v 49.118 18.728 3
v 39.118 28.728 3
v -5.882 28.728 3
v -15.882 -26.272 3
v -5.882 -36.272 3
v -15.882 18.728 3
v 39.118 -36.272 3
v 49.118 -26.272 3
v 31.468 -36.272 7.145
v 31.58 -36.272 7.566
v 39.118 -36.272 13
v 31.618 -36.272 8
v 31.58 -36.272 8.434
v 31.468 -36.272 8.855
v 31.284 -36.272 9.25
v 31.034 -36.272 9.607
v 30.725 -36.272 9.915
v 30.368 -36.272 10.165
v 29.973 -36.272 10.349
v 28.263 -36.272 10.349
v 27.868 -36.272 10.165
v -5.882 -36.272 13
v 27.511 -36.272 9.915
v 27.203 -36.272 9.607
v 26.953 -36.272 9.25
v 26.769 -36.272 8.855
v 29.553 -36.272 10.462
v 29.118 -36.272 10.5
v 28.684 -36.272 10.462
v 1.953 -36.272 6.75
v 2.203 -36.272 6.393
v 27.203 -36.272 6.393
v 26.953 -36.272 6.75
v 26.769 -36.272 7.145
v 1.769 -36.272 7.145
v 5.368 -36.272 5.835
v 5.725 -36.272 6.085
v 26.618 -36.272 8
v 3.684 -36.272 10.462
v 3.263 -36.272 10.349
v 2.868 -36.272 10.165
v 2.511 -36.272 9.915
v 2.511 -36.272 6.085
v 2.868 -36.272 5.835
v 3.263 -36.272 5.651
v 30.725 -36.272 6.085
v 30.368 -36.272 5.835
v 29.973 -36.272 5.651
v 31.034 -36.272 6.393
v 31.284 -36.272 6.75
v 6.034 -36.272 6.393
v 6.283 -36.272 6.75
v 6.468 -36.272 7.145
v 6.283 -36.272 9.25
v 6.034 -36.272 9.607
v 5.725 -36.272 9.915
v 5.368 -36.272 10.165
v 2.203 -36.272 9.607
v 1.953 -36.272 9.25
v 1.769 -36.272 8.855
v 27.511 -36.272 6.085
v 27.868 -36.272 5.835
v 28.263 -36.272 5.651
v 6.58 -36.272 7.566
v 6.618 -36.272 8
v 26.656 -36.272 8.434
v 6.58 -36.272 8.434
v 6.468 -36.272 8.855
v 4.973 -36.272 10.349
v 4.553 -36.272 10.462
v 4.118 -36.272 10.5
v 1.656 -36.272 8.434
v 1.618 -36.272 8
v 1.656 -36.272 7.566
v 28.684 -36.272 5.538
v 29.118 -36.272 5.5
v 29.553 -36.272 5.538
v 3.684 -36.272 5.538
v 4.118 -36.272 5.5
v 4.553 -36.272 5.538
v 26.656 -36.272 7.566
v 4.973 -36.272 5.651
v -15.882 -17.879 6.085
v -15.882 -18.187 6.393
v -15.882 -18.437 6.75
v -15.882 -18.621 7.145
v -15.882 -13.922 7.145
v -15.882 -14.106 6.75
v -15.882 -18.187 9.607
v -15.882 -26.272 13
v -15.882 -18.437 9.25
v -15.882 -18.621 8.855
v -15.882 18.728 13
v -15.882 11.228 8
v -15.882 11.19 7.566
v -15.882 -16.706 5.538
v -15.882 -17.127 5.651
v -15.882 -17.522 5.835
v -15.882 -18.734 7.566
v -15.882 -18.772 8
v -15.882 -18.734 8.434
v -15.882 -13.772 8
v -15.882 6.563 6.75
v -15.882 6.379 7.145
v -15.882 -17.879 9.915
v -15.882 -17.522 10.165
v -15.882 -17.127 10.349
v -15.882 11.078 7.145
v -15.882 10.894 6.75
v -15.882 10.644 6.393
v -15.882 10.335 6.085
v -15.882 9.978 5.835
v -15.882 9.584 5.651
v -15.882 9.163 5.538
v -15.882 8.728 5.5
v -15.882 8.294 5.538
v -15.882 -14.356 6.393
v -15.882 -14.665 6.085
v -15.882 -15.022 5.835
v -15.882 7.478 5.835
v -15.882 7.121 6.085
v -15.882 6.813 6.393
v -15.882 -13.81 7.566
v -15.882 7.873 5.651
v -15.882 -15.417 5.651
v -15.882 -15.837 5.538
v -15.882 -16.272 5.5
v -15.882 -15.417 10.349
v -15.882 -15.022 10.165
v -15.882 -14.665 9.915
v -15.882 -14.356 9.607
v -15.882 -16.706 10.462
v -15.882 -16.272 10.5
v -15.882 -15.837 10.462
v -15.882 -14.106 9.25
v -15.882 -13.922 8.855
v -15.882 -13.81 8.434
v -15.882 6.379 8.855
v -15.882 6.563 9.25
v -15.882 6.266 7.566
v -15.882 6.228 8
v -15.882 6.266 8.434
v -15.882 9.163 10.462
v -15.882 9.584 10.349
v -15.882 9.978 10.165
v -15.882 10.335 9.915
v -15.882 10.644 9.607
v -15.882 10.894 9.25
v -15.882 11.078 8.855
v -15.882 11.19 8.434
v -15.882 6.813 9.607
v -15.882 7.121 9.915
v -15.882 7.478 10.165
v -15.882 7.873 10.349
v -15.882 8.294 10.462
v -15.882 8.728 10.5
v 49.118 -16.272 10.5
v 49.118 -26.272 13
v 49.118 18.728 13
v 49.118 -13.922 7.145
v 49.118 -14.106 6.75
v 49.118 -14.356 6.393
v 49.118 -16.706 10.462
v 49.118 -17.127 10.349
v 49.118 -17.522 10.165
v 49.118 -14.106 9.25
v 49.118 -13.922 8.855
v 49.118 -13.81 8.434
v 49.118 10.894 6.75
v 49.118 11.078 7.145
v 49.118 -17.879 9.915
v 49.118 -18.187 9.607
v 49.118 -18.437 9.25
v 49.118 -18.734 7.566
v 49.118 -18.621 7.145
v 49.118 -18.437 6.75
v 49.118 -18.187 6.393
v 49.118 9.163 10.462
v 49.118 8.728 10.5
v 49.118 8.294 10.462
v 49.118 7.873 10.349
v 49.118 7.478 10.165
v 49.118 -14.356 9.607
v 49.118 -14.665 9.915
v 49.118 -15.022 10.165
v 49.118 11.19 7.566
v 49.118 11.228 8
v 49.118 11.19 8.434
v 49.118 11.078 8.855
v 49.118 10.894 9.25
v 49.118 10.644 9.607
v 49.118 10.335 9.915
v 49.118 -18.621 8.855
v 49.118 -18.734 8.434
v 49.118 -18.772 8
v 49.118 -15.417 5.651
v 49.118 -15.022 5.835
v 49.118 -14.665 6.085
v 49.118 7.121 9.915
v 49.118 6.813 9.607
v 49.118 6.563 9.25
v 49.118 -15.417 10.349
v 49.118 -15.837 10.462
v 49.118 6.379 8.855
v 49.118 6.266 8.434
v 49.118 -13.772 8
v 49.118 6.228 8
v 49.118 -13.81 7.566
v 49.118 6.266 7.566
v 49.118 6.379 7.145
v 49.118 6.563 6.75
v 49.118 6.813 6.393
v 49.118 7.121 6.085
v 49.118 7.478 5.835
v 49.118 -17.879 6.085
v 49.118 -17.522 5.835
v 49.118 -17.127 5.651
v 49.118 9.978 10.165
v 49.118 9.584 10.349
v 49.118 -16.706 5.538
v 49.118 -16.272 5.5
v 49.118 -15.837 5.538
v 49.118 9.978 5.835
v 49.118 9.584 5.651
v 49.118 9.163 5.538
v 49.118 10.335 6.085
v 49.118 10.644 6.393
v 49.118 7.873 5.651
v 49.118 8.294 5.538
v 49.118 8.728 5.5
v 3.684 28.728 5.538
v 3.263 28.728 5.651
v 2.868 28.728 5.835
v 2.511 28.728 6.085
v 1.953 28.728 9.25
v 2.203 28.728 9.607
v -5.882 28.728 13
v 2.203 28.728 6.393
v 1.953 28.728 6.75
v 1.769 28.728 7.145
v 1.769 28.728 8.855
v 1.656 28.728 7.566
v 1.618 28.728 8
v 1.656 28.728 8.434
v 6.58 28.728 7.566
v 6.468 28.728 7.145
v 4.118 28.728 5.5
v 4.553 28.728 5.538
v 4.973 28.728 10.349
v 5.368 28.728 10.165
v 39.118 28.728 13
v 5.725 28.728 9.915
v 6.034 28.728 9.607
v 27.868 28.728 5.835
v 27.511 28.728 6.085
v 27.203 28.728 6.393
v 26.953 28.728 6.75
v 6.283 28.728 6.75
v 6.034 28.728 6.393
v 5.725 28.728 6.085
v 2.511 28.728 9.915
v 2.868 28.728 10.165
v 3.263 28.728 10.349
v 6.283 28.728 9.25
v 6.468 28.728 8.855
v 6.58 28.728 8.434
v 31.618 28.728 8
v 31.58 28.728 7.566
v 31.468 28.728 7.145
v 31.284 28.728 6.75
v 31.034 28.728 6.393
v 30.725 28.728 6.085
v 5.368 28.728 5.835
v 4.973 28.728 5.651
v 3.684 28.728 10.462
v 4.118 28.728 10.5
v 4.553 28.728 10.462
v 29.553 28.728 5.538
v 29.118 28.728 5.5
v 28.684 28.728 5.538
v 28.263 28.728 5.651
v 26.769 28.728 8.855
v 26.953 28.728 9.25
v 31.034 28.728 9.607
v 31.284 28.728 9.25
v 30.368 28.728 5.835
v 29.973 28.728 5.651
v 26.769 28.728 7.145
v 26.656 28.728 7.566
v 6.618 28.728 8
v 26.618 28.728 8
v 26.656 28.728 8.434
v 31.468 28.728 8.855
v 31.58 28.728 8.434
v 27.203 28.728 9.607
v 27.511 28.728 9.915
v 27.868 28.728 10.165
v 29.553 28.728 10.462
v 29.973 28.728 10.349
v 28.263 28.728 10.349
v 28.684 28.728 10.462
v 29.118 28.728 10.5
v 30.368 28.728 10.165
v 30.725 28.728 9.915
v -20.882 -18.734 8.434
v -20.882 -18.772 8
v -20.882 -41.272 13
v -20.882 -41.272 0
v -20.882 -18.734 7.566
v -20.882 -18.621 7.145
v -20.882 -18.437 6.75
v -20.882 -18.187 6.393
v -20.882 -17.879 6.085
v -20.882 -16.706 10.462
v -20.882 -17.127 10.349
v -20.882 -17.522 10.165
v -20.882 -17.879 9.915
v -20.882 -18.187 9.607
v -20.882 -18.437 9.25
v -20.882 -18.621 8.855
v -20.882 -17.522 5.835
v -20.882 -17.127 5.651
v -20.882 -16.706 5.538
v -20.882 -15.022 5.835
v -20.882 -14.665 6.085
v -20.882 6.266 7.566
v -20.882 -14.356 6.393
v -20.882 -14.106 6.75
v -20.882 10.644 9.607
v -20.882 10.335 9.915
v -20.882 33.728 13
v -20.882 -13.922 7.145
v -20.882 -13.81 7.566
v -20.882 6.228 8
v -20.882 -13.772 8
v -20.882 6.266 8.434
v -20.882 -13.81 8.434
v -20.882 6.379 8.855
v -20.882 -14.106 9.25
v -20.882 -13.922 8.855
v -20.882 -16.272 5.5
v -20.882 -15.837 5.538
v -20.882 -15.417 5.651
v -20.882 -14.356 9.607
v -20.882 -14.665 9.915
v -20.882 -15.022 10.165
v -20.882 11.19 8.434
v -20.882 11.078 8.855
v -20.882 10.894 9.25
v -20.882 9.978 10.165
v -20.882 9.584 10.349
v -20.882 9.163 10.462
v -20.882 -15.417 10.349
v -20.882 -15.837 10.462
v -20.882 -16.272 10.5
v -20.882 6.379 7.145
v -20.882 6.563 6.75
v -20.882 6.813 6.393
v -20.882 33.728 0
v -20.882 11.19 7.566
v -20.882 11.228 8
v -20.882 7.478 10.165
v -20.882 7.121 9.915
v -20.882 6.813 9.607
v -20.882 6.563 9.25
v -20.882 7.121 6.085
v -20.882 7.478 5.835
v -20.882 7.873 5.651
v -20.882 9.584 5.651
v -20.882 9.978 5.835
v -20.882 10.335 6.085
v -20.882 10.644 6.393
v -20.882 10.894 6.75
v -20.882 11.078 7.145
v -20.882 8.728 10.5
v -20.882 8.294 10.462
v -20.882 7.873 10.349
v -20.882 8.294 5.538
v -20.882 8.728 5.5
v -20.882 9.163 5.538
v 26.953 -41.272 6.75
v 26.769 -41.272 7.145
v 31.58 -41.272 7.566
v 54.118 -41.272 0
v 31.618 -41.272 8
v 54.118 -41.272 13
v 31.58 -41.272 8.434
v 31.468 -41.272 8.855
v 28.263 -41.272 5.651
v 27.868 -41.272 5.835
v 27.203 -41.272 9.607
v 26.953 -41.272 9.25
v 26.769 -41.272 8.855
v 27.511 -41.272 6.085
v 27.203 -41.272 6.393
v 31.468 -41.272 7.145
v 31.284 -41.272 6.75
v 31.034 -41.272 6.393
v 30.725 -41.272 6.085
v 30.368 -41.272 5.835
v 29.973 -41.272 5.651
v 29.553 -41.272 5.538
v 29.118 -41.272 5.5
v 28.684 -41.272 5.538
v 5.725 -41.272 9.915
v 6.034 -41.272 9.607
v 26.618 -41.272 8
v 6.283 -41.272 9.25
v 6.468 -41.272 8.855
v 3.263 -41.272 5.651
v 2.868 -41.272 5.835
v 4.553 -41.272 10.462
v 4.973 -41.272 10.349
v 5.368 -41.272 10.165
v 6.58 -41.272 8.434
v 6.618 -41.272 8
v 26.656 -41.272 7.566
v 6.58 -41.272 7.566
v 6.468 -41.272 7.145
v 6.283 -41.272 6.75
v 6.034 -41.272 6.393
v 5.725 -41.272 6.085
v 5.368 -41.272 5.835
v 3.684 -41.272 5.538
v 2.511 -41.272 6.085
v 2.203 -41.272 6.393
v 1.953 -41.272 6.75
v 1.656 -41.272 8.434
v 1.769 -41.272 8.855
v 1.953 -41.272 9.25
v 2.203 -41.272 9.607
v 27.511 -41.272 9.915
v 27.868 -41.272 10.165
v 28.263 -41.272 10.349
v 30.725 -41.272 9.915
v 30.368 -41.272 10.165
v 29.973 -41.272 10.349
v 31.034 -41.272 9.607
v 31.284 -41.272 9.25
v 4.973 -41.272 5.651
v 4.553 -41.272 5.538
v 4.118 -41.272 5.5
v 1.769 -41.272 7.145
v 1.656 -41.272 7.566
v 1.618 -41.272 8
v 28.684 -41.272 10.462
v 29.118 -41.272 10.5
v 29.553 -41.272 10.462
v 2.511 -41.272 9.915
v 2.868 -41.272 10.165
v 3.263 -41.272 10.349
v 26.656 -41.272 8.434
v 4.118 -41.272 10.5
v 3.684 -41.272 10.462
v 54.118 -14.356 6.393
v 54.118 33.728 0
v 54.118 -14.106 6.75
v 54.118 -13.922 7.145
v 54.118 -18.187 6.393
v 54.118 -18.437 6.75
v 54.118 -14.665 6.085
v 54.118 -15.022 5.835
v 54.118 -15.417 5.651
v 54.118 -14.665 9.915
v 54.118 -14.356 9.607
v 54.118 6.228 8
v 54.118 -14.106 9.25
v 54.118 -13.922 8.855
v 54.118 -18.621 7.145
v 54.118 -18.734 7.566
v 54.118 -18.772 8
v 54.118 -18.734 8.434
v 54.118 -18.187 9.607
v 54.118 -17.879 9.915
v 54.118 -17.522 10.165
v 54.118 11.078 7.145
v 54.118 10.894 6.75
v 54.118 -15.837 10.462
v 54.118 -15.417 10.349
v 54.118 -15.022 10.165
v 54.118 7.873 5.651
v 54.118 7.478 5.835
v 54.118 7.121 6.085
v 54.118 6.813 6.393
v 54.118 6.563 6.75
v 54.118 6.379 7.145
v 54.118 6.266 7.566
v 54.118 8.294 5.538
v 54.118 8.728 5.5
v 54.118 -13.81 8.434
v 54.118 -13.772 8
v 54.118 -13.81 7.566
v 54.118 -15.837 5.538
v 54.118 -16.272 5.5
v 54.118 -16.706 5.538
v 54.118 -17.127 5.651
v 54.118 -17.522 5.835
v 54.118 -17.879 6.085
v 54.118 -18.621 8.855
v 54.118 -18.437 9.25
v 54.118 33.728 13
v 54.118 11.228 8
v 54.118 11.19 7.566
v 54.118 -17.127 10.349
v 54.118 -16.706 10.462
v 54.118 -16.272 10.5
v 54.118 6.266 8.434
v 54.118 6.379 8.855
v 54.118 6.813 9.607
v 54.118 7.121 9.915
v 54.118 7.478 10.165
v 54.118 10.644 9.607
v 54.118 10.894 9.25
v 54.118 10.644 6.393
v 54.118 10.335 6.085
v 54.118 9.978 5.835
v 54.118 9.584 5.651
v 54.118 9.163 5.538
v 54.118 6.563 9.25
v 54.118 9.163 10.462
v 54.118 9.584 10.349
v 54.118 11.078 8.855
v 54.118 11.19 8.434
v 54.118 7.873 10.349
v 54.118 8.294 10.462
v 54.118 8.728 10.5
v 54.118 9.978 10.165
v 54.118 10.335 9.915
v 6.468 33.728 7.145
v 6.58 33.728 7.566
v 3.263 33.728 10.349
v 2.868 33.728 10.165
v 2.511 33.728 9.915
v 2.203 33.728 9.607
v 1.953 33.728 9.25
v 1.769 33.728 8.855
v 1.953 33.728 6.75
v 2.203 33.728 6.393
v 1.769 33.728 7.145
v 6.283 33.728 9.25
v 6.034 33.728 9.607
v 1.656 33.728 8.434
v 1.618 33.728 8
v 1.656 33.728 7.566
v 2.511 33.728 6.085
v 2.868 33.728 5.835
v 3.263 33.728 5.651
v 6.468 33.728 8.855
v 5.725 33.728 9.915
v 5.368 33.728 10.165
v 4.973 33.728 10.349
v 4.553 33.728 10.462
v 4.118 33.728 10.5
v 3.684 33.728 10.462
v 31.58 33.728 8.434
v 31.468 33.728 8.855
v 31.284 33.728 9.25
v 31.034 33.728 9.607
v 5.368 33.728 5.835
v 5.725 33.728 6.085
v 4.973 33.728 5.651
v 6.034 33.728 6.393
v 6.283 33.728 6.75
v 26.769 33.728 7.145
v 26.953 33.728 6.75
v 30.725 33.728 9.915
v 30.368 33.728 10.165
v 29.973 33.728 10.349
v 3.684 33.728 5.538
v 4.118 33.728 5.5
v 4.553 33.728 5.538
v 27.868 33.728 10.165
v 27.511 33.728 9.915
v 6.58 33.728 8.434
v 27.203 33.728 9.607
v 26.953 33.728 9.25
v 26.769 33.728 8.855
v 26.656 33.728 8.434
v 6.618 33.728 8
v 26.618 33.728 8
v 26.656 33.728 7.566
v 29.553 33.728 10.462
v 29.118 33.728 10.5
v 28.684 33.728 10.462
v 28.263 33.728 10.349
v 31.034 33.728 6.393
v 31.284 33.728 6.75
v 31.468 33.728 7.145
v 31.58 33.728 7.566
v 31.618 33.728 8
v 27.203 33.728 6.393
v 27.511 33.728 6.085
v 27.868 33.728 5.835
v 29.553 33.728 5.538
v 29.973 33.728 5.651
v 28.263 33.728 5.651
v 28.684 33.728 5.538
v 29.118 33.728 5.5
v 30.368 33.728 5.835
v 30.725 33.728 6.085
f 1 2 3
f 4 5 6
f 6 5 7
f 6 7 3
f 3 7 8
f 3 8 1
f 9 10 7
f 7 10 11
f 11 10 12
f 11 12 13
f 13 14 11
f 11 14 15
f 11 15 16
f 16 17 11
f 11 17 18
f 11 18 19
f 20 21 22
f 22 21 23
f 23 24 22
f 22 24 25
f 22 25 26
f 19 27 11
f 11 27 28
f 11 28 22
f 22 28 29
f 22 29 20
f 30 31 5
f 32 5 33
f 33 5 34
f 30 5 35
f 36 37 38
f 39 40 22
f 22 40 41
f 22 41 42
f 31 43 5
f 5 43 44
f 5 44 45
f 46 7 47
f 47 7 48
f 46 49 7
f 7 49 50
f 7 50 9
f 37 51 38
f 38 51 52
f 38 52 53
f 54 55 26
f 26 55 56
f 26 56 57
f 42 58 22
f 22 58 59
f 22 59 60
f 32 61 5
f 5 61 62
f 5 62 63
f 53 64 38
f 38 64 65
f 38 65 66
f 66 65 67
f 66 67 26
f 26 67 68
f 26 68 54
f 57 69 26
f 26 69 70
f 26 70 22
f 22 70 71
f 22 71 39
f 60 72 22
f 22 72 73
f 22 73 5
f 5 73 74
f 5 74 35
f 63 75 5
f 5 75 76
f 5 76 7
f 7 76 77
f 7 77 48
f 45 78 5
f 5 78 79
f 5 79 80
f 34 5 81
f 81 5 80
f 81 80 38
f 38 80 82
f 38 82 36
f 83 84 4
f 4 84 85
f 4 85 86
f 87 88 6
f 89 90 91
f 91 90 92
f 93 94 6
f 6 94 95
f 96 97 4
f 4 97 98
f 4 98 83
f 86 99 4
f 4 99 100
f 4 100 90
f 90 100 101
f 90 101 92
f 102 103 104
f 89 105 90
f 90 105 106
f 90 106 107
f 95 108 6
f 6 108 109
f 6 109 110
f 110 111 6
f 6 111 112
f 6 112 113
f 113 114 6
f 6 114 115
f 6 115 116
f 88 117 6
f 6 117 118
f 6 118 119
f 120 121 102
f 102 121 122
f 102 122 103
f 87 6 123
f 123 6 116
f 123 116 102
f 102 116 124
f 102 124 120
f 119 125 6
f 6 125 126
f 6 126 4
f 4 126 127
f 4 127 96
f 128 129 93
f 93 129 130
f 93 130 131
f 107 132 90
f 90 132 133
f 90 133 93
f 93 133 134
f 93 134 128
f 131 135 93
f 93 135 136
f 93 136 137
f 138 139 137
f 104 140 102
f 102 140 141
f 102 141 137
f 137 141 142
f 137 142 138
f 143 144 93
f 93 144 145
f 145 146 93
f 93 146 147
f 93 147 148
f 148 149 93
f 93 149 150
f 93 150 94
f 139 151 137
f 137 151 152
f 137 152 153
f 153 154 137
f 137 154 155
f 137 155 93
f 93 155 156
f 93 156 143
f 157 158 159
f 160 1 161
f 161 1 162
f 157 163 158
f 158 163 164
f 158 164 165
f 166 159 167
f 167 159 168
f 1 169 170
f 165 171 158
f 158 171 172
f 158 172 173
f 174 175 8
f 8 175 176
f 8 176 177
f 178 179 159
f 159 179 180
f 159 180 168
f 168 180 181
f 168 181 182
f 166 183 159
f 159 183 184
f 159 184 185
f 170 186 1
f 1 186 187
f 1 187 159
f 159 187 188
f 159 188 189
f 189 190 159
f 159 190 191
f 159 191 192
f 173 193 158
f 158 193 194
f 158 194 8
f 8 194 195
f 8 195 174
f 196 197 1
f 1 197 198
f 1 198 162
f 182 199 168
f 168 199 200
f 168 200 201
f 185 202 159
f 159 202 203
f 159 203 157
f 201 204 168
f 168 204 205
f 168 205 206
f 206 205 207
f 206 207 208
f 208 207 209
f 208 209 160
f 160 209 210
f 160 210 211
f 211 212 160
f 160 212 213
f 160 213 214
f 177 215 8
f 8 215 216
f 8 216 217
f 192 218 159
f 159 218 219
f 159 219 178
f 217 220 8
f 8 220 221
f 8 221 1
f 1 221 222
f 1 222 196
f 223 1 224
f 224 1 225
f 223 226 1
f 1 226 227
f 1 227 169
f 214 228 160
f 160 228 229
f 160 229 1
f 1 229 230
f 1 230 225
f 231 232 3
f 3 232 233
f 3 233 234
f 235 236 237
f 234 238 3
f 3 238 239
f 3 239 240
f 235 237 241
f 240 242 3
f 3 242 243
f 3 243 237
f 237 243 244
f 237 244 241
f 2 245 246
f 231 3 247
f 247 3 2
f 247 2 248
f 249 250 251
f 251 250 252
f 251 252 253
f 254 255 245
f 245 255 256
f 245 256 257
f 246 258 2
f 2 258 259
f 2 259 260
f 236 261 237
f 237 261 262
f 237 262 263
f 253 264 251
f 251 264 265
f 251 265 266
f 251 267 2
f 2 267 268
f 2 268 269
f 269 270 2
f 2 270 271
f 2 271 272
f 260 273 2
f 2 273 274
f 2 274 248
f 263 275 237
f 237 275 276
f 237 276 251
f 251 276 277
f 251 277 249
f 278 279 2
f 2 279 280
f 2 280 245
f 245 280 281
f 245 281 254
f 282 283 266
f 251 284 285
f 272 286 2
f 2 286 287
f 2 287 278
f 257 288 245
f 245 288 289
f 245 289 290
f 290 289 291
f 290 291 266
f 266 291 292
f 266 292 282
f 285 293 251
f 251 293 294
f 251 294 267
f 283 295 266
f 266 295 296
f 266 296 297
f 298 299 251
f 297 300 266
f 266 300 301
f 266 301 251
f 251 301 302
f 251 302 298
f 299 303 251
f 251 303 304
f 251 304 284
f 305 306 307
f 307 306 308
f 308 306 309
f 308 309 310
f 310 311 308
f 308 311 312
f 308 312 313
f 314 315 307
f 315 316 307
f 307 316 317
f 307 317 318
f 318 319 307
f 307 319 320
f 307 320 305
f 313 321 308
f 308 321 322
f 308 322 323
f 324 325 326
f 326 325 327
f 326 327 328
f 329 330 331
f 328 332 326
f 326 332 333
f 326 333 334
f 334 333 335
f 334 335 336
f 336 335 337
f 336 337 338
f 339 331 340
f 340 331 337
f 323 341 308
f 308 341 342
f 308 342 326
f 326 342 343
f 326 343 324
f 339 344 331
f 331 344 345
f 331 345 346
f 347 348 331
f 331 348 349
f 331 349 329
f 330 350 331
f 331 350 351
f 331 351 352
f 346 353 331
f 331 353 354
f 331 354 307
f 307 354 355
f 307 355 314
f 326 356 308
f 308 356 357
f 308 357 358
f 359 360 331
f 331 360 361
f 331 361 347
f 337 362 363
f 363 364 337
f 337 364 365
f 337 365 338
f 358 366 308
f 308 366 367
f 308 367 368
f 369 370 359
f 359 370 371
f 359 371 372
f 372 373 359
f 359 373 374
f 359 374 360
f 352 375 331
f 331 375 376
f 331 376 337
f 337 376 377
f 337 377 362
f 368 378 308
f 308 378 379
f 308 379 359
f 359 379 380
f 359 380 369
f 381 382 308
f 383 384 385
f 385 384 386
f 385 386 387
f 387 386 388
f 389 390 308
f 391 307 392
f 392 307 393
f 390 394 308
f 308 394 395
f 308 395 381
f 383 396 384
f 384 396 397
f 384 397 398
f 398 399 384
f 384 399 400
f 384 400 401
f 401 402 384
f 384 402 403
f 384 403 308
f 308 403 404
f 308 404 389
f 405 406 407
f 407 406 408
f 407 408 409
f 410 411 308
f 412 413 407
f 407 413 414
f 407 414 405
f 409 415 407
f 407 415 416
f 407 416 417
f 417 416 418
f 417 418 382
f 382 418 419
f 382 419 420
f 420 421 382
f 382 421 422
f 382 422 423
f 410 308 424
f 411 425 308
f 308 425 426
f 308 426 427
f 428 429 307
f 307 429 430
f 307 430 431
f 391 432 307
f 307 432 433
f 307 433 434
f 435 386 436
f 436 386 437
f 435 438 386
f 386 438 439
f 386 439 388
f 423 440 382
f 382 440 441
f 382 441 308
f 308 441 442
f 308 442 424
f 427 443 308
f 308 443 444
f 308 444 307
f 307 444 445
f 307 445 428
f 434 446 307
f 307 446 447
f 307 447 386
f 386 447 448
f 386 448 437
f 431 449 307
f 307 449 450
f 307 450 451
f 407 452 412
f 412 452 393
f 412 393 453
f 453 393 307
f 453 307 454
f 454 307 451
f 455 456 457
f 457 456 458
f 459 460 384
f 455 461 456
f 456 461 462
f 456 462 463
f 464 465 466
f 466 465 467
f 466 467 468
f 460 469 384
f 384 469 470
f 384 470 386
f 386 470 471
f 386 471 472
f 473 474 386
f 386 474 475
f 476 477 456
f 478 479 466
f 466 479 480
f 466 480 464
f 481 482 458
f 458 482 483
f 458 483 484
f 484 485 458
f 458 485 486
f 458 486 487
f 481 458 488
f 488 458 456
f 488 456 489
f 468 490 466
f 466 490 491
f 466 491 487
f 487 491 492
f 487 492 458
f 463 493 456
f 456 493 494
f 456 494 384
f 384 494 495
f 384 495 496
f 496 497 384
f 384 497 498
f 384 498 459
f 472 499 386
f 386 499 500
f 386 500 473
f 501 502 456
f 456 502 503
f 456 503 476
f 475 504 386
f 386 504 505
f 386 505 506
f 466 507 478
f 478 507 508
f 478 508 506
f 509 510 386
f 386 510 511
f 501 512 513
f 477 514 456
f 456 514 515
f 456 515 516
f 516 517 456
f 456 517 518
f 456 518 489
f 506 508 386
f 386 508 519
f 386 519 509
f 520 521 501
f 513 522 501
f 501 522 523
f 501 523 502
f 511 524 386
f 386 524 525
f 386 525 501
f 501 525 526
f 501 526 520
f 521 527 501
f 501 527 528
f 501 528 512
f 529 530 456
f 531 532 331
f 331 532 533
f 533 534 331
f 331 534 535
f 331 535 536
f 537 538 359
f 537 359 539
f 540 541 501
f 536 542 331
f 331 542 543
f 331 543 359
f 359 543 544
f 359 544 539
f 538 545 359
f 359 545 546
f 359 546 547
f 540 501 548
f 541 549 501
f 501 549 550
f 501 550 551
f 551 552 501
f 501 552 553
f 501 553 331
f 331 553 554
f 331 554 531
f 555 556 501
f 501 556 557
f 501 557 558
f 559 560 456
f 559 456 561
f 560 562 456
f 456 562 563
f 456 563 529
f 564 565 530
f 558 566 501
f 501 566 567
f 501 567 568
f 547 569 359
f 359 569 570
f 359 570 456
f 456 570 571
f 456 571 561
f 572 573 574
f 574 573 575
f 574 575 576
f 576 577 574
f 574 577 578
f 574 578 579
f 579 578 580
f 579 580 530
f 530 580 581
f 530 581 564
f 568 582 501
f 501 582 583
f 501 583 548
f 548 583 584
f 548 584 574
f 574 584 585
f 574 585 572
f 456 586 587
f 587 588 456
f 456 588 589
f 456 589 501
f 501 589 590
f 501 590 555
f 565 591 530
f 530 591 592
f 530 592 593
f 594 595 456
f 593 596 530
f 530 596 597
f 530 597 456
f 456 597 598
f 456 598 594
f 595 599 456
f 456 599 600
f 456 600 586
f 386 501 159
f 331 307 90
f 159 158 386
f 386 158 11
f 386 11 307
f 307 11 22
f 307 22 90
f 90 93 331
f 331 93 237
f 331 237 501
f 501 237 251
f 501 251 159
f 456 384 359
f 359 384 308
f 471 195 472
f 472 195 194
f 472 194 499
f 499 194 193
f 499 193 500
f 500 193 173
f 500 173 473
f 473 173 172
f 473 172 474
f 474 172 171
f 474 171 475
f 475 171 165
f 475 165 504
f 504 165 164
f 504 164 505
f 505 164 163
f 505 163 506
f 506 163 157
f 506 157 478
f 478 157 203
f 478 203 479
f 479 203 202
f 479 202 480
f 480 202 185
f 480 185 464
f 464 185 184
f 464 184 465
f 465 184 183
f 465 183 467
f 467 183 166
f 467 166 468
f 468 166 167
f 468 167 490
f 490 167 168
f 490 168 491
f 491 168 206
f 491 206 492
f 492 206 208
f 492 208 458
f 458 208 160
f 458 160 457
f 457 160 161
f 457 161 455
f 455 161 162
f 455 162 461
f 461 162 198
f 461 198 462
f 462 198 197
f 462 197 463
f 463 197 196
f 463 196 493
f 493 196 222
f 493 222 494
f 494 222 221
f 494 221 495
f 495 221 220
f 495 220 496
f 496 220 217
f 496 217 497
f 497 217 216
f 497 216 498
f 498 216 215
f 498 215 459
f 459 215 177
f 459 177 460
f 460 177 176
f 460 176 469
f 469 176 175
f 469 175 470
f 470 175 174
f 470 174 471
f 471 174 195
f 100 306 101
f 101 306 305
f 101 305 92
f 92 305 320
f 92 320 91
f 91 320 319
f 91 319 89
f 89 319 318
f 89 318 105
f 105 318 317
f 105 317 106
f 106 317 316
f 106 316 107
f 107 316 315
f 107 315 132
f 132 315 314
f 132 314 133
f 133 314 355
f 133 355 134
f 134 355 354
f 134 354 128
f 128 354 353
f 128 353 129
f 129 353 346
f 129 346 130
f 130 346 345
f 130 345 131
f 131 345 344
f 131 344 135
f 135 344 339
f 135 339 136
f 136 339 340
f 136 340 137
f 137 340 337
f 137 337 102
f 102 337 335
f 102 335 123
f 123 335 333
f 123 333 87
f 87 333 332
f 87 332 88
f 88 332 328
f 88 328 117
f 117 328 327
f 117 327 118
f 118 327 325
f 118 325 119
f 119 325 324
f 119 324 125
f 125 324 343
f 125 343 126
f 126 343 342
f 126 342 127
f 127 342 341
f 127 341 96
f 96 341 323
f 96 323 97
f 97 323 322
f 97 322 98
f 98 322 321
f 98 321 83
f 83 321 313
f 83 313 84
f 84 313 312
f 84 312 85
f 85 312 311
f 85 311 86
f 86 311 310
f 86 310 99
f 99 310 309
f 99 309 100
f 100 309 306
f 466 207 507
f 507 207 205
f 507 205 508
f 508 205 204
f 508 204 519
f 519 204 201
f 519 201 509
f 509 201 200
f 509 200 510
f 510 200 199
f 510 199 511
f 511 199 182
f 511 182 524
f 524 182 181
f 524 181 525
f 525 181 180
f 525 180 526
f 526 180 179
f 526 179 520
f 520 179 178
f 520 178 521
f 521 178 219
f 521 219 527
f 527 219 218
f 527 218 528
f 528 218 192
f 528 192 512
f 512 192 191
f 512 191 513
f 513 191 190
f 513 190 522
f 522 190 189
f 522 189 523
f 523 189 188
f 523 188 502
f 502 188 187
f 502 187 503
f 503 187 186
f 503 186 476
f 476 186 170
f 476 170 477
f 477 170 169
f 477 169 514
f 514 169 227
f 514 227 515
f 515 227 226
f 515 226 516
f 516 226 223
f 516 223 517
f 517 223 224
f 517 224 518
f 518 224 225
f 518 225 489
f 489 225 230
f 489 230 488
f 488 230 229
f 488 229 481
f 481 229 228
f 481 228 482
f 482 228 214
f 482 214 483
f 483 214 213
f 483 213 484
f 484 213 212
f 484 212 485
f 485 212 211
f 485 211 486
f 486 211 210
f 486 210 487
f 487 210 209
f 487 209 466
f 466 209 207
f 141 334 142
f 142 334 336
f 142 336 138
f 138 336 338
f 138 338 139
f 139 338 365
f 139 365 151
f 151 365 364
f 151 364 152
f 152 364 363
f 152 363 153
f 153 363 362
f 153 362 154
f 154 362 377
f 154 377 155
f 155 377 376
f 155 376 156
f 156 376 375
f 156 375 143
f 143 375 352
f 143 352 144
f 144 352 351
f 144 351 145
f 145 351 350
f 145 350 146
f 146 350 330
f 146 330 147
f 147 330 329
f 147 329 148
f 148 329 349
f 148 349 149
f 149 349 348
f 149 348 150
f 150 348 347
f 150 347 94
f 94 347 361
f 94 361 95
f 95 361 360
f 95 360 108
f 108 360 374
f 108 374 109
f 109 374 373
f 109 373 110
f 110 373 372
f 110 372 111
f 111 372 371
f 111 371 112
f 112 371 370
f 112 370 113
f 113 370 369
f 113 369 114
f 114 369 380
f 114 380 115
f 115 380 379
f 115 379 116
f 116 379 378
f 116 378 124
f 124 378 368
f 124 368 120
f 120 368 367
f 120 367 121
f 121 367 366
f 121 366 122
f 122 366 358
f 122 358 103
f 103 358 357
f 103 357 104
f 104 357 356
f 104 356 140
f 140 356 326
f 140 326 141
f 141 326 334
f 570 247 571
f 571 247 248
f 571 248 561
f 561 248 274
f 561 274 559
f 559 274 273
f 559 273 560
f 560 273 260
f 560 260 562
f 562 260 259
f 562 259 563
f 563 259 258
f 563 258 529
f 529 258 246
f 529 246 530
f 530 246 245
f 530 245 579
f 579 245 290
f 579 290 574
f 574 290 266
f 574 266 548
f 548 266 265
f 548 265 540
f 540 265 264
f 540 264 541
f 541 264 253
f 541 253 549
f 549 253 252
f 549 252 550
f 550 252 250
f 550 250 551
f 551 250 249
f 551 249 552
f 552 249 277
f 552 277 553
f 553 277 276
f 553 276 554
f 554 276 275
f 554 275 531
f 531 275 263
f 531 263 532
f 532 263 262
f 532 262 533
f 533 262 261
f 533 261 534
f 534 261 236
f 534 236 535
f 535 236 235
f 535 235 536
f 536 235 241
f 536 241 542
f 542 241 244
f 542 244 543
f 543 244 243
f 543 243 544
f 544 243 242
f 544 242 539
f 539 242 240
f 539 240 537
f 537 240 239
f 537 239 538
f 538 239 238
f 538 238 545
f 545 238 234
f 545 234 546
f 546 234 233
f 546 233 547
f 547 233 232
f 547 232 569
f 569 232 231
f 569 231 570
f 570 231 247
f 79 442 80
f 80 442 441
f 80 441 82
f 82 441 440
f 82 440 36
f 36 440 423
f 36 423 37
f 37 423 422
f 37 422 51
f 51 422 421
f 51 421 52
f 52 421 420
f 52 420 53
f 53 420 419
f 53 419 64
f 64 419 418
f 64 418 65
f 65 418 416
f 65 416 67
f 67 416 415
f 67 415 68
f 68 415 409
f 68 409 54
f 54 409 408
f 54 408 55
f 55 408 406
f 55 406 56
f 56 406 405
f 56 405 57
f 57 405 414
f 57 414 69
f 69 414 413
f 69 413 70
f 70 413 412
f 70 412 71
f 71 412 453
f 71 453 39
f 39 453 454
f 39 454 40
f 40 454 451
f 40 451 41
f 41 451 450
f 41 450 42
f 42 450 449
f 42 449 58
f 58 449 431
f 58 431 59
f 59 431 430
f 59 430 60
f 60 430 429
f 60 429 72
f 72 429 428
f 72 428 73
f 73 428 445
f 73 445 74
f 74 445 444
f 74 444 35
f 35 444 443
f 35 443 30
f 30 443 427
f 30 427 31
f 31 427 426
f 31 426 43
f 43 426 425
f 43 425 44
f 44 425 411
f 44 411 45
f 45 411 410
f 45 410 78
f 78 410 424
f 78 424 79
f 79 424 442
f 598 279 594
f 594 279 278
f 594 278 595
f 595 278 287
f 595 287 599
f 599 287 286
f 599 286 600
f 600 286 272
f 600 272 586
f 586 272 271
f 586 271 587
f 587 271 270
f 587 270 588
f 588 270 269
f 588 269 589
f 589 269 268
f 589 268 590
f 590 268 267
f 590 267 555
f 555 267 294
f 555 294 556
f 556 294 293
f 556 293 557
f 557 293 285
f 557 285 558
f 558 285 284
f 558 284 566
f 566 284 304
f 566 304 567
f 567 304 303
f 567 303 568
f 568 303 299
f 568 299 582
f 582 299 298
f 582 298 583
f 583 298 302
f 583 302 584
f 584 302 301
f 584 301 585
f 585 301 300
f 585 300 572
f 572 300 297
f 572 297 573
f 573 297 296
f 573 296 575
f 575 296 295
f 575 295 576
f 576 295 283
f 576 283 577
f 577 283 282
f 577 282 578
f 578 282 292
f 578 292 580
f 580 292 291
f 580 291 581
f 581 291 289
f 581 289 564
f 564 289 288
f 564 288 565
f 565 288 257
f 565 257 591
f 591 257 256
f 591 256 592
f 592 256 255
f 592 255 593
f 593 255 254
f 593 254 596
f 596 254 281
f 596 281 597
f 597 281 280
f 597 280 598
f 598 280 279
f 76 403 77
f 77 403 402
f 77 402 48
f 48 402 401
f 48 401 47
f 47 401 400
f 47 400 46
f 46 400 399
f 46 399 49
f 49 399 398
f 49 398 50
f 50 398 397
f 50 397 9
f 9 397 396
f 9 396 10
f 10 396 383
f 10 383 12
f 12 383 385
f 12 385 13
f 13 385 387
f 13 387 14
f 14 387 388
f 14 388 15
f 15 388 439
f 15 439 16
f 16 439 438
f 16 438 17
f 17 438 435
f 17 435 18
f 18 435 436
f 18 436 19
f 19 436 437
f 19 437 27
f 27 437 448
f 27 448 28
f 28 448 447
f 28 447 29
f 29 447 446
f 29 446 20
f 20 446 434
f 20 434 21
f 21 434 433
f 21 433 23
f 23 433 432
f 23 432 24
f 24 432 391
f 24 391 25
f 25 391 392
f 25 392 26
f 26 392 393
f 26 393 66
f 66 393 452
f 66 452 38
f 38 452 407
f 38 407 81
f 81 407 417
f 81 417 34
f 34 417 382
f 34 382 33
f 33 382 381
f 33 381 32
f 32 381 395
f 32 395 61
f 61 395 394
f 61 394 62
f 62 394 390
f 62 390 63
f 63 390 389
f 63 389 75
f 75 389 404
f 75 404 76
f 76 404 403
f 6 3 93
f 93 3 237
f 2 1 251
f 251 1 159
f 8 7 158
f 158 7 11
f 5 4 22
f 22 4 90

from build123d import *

# Parameters (mm, degrees)
BOSS_EXTRU_1_DEPTH        = 13
COQUE1_T                  = -5
COQUE1_THICKNESS_2_FACE_W = 65
COQUE1_THICKNESS_2_FACE_H = 65
COQUE1_THICKNESS_2_DEPTH  = 2
ENL_V_MAT_EXTRU_1_REACH   = 88.587
ESQUISSE2_R               = 2.5
ENL_V_MAT_EXTRU_2_REACH   = 95.396
ESQUISSE3_R               = 2.5
BOSS_EXTRU_2_DEPTH        = 10


with BuildPart() as part:
    # Esquisse1 → Boss.-Extru.1 (new body)
    with BuildSketch(Plane.XY):
        Polygon((44.118436308, 33.728448276), (54.118436308, 33.728448276), (54.118436308, 23.728448276), (54.118436308, -41.271551724), (-20.881563692, -41.271551724), (-20.881563692, 33.728448276), align=None)
    extrude(amount=BOSS_EXTRU_1_DEPTH)

    # Coque1
    coque1_openings = [part.faces().sort_by_distance(p)[0] for p in [
        (16.618436308, -3.771551724, 13),
    ]]
    offset(amount=COQUE1_T, openings=coque1_openings, kind=Kind.INTERSECTION)

    # Coque1 thickness 2 face (on inner face of the shell) → Coque1 thickness 2 (cut)
    with BuildSketch(Plane(origin=(16.618436308, -3.771551724, 5), x_dir=(-1, 0, 0), z_dir=(0, 0, -1))):
        Rectangle(COQUE1_THICKNESS_2_FACE_W, COQUE1_THICKNESS_2_FACE_H)
    extrude(amount=COQUE1_THICKNESS_2_DEPTH, mode=Mode.SUBTRACT)

    # Enlèv. mat.-Extru.1: up to this face of the body (flat: up to its plane)
    enl_v_mat_extru_1_end = Plane(part.part.faces().sort_by_distance((54.118436308, -3.771551724, 6.5))[0])
    # Esquisse2 → Enlèv. mat.-Extru.1 (cut, up to the picked face)
    with BuildSketch(Plane.ZY.offset(20.881563692), mode=Mode.PRIVATE) as enl_v_mat_extru_1_sk1:
        with Locations(Location((8, -16.271551724, 0), (0, 0, 270))):
            Circle(ESQUISSE2_R)
    enl_v_mat_extru_1_tool1 = split(extrude(enl_v_mat_extru_1_sk1.sketch, amount=-ENL_V_MAT_EXTRU_1_REACH, mode=Mode.PRIVATE), bisect_by=enl_v_mat_extru_1_end, keep=Keep.BOTH, mode=Mode.PRIVATE)
    # Esquisse2 → Enlèv. mat.-Extru.1 (cut, up to the picked face)
    with BuildSketch(Plane.ZY.offset(20.881563692), mode=Mode.PRIVATE) as enl_v_mat_extru_1_sk2:
        with Locations(Location((8, 8.728448276, 0), (0, 0, 270))):
            Circle(ESQUISSE2_R)
    enl_v_mat_extru_1_tool2 = split(extrude(enl_v_mat_extru_1_sk2.sketch, amount=-ENL_V_MAT_EXTRU_1_REACH, mode=Mode.PRIVATE), bisect_by=enl_v_mat_extru_1_end, keep=Keep.BOTH, mode=Mode.PRIVATE)
    add(enl_v_mat_extru_1_tool1.solids().sort_by(Axis((-20.881564, -16.271552, 8), (1, 0, 0)))[0], mode=Mode.SUBTRACT)
    add(enl_v_mat_extru_1_tool2.solids().sort_by(Axis((-20.881564, 8.728448, 8), (1, 0, 0)))[0], mode=Mode.SUBTRACT)

    # Enlèv. mat.-Extru.2: up to this face of the body (flat: up to its plane)
    enl_v_mat_extru_2_end = Plane(part.part.faces().sort_by_distance((16.618436308, 33.728448276, 6.5))[0])
    # Esquisse3 → Enlèv. mat.-Extru.2 (cut, up to the picked face)
    with BuildSketch(Plane.XZ.offset(41.271551724), mode=Mode.PRIVATE) as enl_v_mat_extru_2_sk1:
        with Locations(Location((4.118436308, 8, 0), (0, 0, 270))):
            Circle(ESQUISSE3_R)
    enl_v_mat_extru_2_tool1 = split(extrude(enl_v_mat_extru_2_sk1.sketch, amount=-ENL_V_MAT_EXTRU_2_REACH, mode=Mode.PRIVATE), bisect_by=enl_v_mat_extru_2_end, keep=Keep.BOTH, mode=Mode.PRIVATE)
    # Esquisse3 → Enlèv. mat.-Extru.2 (cut, up to the picked face)
    with BuildSketch(Plane.XZ.offset(41.271551724), mode=Mode.PRIVATE) as enl_v_mat_extru_2_sk2:
        with Locations(Location((29.118436308, 8, 0), (0, 0, 270))):
            Circle(ESQUISSE3_R)
    enl_v_mat_extru_2_tool2 = split(extrude(enl_v_mat_extru_2_sk2.sketch, amount=-ENL_V_MAT_EXTRU_2_REACH, mode=Mode.PRIVATE), bisect_by=enl_v_mat_extru_2_end, keep=Keep.BOTH, mode=Mode.PRIVATE)
    add(enl_v_mat_extru_2_tool1.solids().sort_by(Axis((4.118436, -41.271552, 8), (0, 1, 0)))[0], mode=Mode.SUBTRACT)
    add(enl_v_mat_extru_2_tool2.solids().sort_by(Axis((29.118436, -41.271552, 8), (0, 1, 0)))[0], mode=Mode.SUBTRACT)

    # Esquisse4 → Boss.-Extru.2 (add)
    with BuildSketch(Plane.XY.offset(3)):
        Polygon((-5.881563692, 28.728448276), (-15.881563692, 18.728448276), (-15.881563692, 28.728448276), align=None)
        Polygon((49.118436308, 28.728448276), (49.118436308, 18.728448276), (39.118436308, 28.728448276), align=None)
        Polygon((49.118436308, -36.271551724), (49.118436308, -26.271551724), (39.118436308, -36.271551724), align=None)
        Polygon((-5.881563692, -36.271551724), (-15.881563692, -26.271551724), (-15.881563692, -36.271551724), align=None)
    extrude(amount=BOSS_EXTRU_2_DEPTH)


solid = part.part
